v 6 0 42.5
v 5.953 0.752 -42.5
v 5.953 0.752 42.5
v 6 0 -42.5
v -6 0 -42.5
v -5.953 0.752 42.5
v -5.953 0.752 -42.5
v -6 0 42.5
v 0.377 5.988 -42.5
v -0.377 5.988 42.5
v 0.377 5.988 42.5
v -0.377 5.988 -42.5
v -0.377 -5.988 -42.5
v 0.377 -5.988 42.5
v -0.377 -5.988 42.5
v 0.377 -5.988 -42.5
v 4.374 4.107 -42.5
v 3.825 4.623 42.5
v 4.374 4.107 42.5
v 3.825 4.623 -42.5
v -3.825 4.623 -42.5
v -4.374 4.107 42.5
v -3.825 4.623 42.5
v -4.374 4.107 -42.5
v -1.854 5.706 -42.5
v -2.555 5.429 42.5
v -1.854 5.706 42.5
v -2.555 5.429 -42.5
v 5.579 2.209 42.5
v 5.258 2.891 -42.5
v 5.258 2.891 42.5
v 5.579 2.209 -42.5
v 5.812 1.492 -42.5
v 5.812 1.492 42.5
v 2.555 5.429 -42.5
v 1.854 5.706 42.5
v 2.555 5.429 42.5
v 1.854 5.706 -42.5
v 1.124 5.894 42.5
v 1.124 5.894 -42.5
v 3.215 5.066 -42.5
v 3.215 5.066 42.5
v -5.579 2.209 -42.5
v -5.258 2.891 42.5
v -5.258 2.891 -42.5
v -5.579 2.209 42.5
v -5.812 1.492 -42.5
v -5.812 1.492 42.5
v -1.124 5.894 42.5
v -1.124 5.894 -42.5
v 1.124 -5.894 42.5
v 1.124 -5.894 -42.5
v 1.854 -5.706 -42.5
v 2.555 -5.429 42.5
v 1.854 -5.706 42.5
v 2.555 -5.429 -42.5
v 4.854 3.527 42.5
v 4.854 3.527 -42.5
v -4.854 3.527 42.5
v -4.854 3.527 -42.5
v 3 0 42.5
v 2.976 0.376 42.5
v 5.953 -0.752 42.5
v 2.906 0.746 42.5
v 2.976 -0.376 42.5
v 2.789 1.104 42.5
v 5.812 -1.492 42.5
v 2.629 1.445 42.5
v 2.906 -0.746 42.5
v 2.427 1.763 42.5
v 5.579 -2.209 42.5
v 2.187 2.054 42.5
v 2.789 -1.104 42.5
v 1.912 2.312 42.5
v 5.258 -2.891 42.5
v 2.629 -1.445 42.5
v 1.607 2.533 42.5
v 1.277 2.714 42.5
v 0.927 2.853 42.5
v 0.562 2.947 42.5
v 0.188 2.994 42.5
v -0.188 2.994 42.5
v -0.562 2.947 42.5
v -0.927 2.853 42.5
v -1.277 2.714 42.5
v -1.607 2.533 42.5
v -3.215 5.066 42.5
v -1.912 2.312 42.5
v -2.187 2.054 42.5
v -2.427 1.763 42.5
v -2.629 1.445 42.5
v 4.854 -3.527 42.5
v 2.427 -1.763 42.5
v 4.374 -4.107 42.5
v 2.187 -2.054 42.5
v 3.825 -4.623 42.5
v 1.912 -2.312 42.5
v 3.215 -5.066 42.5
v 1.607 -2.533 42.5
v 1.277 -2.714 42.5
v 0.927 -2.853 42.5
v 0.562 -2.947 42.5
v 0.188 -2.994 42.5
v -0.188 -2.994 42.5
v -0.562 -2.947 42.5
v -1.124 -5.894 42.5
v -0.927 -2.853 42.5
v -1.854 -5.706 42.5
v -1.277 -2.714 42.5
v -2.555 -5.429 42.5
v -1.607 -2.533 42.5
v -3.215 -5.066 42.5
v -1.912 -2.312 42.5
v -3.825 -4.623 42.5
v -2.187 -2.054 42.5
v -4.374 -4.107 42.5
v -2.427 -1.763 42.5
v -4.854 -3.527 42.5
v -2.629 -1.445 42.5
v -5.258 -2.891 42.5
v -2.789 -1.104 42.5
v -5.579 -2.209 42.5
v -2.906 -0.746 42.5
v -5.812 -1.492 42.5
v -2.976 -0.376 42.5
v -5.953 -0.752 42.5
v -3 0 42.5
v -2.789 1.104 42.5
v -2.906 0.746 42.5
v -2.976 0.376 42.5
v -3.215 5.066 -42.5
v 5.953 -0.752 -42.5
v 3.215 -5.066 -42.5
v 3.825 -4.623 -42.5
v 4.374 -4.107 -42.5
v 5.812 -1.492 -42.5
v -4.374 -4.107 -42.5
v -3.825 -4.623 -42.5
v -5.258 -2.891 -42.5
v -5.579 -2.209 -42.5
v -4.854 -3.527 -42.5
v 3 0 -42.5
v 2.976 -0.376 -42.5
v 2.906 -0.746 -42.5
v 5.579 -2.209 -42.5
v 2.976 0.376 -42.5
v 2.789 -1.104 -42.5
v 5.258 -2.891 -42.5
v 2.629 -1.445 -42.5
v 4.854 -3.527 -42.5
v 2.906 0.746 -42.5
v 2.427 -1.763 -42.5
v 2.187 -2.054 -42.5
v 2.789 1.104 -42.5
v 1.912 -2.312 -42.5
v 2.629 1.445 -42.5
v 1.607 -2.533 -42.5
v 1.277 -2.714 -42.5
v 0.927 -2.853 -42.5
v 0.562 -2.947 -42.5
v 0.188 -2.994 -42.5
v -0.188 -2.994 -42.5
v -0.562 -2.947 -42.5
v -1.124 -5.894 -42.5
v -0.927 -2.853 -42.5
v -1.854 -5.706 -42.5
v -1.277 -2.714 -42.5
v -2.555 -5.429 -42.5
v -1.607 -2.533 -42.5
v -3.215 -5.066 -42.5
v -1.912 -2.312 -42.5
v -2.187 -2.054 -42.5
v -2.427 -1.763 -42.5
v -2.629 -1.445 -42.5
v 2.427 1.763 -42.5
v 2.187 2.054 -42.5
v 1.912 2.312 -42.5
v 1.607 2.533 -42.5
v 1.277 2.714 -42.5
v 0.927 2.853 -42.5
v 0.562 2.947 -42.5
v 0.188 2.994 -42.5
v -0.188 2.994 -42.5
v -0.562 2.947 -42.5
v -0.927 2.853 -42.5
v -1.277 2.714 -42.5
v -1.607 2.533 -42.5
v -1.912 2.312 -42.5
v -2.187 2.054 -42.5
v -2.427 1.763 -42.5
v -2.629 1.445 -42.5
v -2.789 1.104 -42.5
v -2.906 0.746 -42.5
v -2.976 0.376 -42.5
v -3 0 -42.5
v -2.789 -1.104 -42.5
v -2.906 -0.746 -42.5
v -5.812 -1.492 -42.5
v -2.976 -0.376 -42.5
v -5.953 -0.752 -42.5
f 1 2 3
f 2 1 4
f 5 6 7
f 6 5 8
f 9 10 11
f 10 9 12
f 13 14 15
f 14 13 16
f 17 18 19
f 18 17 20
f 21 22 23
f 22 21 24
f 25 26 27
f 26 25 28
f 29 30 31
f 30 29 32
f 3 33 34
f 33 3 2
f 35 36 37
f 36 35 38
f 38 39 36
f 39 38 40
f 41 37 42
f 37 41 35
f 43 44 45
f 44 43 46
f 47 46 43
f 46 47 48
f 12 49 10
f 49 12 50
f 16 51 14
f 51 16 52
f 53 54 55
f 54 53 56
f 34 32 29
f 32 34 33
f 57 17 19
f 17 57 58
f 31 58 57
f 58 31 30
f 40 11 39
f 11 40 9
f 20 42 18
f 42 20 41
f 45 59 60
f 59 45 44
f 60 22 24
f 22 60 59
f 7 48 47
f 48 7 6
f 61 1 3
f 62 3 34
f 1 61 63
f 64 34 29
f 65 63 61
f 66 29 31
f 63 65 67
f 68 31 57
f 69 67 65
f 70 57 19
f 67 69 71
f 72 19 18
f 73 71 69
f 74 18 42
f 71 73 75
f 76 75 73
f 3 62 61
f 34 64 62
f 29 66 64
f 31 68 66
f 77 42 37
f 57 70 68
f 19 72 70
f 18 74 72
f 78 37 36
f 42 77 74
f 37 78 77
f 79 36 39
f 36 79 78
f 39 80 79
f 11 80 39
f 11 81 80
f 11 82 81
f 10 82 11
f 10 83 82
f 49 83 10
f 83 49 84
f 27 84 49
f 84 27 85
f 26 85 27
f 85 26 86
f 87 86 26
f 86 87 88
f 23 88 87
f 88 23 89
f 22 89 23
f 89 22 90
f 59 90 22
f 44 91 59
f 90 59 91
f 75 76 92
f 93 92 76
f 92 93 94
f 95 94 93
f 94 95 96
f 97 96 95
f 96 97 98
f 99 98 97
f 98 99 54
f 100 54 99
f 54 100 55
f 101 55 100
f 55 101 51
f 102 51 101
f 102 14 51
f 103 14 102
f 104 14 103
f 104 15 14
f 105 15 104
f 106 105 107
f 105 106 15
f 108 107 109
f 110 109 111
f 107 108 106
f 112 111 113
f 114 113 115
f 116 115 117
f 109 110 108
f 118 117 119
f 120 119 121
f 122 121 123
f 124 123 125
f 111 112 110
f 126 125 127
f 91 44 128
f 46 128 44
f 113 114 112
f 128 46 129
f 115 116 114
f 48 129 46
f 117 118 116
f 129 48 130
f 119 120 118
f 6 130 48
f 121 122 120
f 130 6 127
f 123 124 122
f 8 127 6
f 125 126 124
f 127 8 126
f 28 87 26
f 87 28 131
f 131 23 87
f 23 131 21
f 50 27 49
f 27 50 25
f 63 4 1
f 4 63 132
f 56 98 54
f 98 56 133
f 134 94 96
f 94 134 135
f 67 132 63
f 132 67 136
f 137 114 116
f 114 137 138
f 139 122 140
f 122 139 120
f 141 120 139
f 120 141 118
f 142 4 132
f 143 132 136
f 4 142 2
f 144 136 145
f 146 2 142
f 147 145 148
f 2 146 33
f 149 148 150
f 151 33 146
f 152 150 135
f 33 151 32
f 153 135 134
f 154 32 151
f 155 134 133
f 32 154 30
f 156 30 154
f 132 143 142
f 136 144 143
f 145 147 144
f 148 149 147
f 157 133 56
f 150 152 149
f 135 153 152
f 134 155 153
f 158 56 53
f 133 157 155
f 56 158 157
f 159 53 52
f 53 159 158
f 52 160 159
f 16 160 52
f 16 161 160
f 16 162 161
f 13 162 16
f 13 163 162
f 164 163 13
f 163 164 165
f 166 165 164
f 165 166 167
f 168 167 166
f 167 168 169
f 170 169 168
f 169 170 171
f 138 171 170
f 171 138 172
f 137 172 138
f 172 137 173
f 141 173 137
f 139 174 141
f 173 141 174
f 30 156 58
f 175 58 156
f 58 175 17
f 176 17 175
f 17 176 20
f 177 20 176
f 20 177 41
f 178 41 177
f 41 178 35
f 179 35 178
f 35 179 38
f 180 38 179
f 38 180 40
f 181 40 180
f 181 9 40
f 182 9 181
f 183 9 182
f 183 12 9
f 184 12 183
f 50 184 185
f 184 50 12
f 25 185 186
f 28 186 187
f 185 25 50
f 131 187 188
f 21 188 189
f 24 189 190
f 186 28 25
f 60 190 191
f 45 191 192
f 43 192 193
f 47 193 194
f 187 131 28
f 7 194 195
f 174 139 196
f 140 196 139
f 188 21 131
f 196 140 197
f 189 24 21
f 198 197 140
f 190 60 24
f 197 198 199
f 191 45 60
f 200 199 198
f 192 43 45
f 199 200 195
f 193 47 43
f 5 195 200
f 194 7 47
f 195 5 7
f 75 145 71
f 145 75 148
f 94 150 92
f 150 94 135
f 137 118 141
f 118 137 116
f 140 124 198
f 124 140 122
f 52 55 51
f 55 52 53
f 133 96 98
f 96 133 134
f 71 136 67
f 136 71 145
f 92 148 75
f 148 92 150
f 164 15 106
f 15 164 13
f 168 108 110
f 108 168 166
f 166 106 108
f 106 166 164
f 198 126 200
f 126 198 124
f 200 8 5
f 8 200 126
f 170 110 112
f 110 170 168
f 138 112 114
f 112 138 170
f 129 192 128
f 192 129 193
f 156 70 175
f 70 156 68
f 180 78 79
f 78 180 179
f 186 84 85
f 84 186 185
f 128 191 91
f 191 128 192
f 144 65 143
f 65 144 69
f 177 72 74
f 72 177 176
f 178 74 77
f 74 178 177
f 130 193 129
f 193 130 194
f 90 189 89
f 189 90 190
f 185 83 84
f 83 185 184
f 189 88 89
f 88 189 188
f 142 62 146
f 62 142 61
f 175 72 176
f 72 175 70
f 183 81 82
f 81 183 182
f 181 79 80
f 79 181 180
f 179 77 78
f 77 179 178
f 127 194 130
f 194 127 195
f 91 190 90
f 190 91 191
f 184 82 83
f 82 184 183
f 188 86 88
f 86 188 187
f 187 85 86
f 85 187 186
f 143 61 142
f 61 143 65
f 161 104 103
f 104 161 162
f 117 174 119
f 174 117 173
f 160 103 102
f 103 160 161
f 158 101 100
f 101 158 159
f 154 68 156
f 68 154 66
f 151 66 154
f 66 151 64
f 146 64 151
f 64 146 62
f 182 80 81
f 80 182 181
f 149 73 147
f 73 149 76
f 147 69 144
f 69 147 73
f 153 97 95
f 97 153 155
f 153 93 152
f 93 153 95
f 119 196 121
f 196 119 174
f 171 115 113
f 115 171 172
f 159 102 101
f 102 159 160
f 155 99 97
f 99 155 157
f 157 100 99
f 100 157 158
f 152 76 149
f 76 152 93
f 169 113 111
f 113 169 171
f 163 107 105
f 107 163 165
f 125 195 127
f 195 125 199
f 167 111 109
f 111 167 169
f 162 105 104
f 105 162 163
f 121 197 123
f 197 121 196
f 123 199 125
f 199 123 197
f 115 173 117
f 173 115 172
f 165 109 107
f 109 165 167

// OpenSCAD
$fn = 50;


difference() {
	union() {
		translate(v = [0, 0, -42.5000000000]) {
			cylinder(h = 85, r = 6.0000000000);
		}
	}
	union() {
		translate(v = [0, 0, -100.0000000000]) {
			cylinder(h = 200, r = 3);
		}
	}
}
